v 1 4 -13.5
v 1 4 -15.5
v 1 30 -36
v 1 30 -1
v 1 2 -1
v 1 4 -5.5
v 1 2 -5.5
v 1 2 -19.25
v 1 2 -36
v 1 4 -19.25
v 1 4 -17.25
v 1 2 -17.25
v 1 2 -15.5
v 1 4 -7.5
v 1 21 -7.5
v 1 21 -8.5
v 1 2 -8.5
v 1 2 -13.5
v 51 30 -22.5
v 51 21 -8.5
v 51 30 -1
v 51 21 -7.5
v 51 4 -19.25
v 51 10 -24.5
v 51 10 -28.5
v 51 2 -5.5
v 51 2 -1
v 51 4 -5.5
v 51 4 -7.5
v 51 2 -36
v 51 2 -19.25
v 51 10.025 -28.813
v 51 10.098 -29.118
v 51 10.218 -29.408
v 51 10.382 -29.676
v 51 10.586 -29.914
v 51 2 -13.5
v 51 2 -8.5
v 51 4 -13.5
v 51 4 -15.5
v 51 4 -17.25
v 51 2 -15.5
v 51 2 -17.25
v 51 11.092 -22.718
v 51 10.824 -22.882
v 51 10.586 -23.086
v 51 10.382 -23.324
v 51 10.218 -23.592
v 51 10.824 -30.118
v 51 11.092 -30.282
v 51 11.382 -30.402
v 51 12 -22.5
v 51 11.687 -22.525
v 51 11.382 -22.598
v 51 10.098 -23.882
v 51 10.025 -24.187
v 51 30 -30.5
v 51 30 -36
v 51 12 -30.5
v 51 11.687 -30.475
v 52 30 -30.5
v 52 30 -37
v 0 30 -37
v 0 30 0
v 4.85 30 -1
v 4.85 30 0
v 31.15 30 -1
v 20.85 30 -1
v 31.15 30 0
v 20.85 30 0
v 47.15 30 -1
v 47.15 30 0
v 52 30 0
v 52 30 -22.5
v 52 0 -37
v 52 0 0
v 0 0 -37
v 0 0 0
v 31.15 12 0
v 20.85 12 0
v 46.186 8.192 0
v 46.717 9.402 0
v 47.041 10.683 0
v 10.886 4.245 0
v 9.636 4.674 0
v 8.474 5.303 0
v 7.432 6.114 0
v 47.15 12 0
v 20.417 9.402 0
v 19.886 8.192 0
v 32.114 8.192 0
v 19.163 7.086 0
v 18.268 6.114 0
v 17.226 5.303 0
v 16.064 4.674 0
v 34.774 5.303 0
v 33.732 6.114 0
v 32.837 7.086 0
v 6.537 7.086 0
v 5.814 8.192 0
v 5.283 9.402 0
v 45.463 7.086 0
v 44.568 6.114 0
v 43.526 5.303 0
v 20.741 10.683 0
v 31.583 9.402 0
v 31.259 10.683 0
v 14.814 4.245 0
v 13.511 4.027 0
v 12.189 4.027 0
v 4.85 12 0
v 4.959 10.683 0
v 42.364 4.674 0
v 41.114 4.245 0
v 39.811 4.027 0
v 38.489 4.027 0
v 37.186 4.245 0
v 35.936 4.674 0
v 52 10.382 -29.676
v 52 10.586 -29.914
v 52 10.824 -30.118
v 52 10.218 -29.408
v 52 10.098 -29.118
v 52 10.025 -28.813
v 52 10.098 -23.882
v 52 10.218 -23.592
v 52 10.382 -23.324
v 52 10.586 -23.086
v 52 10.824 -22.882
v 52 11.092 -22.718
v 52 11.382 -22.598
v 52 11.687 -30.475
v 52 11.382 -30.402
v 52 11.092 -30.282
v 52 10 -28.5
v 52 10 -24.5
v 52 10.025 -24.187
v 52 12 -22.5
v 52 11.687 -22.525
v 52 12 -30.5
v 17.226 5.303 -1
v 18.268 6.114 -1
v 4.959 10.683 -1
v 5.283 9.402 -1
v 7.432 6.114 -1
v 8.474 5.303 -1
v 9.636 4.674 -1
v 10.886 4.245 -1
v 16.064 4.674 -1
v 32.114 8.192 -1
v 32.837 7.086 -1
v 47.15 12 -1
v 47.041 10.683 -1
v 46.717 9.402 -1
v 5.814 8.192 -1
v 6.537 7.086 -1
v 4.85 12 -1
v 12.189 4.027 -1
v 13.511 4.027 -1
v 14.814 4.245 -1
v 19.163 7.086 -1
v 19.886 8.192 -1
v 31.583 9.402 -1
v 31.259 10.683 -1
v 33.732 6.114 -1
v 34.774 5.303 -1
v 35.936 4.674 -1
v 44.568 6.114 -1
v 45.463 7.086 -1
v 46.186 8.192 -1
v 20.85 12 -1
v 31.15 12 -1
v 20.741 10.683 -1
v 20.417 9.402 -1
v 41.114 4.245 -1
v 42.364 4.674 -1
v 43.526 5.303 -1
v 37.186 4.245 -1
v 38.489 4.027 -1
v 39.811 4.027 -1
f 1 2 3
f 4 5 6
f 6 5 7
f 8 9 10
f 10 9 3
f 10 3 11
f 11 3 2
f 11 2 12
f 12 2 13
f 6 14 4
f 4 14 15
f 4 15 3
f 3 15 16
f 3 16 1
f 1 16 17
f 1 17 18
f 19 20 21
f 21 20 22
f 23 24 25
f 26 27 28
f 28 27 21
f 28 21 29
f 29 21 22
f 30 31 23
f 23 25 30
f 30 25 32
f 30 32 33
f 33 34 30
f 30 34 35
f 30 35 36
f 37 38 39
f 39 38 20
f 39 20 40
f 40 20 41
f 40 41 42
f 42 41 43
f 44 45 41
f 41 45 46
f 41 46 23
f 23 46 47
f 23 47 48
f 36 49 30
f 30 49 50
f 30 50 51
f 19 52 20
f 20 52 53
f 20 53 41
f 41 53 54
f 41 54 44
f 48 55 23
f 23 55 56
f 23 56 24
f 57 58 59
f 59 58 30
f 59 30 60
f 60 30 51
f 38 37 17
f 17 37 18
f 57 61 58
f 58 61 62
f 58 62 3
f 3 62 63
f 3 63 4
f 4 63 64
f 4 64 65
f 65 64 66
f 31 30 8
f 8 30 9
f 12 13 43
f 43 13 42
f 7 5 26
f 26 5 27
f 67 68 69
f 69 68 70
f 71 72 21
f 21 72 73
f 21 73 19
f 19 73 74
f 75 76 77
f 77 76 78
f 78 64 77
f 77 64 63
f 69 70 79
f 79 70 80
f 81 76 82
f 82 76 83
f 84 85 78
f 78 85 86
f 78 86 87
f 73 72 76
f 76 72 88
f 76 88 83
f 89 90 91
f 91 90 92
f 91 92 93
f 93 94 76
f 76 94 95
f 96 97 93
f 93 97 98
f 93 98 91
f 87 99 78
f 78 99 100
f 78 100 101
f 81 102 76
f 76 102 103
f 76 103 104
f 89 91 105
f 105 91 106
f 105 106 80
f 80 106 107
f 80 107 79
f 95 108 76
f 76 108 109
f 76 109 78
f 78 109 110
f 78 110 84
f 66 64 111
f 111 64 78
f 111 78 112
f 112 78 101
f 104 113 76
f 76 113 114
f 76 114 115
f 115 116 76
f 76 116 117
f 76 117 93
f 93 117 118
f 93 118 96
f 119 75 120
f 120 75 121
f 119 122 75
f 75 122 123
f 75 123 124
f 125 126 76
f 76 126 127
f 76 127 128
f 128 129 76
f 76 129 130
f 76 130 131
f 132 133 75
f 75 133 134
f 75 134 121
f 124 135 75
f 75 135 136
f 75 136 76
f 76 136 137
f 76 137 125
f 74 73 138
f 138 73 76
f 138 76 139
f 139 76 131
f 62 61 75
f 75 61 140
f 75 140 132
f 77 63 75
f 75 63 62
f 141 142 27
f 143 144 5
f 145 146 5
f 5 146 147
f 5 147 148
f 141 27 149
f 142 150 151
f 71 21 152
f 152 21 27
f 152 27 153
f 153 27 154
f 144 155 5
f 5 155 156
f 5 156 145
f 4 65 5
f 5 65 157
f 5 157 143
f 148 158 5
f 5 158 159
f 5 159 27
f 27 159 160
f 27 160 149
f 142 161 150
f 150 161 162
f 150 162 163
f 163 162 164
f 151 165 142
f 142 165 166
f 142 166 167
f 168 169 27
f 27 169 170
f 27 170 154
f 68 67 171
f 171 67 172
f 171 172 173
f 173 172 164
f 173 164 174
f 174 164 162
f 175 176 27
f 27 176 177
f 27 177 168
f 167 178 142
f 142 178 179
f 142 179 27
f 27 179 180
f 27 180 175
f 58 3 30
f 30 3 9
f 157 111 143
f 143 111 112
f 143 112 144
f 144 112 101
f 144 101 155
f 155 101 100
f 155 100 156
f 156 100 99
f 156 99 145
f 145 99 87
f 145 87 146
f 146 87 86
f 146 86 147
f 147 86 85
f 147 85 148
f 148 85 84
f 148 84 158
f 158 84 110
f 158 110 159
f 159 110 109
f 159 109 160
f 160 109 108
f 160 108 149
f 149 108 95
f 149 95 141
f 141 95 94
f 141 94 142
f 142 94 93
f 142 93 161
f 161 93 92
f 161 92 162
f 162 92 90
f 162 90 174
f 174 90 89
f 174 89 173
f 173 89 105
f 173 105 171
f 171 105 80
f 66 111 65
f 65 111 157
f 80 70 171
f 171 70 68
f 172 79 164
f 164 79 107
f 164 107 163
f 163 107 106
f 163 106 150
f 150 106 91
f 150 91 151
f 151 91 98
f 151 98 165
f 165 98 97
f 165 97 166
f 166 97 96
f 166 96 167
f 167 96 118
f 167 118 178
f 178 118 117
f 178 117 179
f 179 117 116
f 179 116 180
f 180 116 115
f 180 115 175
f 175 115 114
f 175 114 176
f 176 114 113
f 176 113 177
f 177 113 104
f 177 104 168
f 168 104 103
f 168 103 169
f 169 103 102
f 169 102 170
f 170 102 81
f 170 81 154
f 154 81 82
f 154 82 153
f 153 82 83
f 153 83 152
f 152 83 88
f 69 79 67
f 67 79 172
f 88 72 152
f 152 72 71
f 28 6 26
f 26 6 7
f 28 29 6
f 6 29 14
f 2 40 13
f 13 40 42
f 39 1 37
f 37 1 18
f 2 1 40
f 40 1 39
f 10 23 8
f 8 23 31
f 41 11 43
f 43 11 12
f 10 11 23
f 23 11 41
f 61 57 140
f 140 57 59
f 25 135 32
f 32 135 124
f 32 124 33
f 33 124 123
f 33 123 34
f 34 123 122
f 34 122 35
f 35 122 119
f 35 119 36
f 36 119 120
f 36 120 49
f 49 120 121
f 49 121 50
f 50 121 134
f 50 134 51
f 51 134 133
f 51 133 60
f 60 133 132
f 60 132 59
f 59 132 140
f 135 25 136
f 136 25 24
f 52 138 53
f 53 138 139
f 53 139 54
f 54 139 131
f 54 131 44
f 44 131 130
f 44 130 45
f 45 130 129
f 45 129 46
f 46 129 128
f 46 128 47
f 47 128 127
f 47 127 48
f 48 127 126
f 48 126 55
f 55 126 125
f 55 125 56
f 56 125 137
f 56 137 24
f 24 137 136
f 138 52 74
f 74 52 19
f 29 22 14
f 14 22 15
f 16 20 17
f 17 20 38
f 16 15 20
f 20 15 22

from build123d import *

# Parameters (mm, degrees)
SKETCH1_W           = 52
SKETCH1_H           = 37
SKETCH1_W_2         = 50
SKETCH1_H_2         = 35
BOSS_EXTRUDE1_DEPTH = 30
SKETCH2_W           = 52
SKETCH2_H           = 37
BOSS_EXTRUDE2_DEPTH = 2
CUT_EXTRUDE1_DEPTH  = 2
SKETCH4_W           = 50
SKETCH4_H           = 2
BOSS_EXTRUDE3_DEPTH = 2
CUT_EXTRUDE2_REACH  = 54
SKETCH7_W           = 50
SKETCH7_H           = 1
BOSS_EXTRUDE4_DEPTH = 19


with BuildPart() as part:
    # Sketch1 → Boss-Extrude1 (new body)
    with BuildSketch(Plane(origin=(0, 0, 0), x_dir=(1, 0, 0), z_dir=(0, 1, 0))):
        with Locations((26, 18.5)):
            Rectangle(SKETCH1_W, SKETCH1_H)
        with Locations((26, 18.5)):
            Rectangle(SKETCH1_W_2, SKETCH1_H_2, mode=Mode.SUBTRACT)
    extrude(amount=BOSS_EXTRUDE1_DEPTH)

    # Sketch2 → Boss-Extrude2 (add)
    with BuildSketch(Plane(origin=(0, 0, 0), x_dir=(1, 0, 0), z_dir=(0, 1, 0))):
        with Locations((26, 18.5)):
            Rectangle(SKETCH2_W, SKETCH2_H)
    extrude(amount=BOSS_EXTRUDE2_DEPTH)

    # Sketch3 → Cut-Extrude1 (cut)
    with BuildSketch(Plane.XY):
        with BuildLine():
            Line((4.85, 12), (4.85, 30))
            Line((4.85, 30), (20.85, 30))
            Line((20.85, 30), (20.85, 12))
            ThreePointArc((20.85, 12), (12.85, 4), (4.85, 12))
        make_face()
        with BuildLine():
            Line((31.15, 12), (31.15, 30))
            Line((31.15, 30), (47.15, 30))
            Line((47.15, 30), (47.15, 12))
            ThreePointArc((47.15, 12), (39.15, 4), (31.15, 12))
        make_face()
    extrude(amount=-CUT_EXTRUDE1_DEPTH, mode=Mode.SUBTRACT)

    # Sketch4 → Boss-Extrude3 (add)
    with BuildSketch(Plane(origin=(0, 2, 0), x_dir=(1, 0, 0), z_dir=(0, 1, 0))):
        with Locations((26, 6.5)):
            Rectangle(SKETCH4_W, SKETCH4_H)
        with Locations((26, 14.5)):
            Rectangle(SKETCH4_W, SKETCH4_H)
        with Locations((26, 18.25)):
            Rectangle(SKETCH4_W, SKETCH4_H)
    extrude(amount=BOSS_EXTRUDE3_DEPTH)

    # Sketch5 → Cut-Extrude2 (cut, up to next)
    with BuildSketch(Plane(origin=(52, 0, 0), x_dir=(0, 0, -1), z_dir=(1, 0, 0)), mode=Mode.PRIVATE) as cut_extrude2_sk1:
        with BuildLine():
            Line((30.5, 30), (22.5, 30))
            Line((22.5, 30), (22.5, 12))
            ThreePointArc((22.5, 12), (23.085786438, 10.585786438), (24.5, 10))
            Line((24.5, 10), (28.5, 10))
            ThreePointArc((28.5, 10), (29.914213562, 10.585786438), (30.5, 12))
            Line((30.5, 12), (30.5, 30))
        make_face()
    cut_extrude2_tool1 = extrude(cut_extrude2_sk1.sketch, amount=-CUT_EXTRUDE2_REACH, mode=Mode.PRIVATE) & part.part
    add(cut_extrude2_tool1.solids().sort_by_distance((52, 20.103619, -26.5))[0], mode=Mode.SUBTRACT)

    # Sketch7 → Boss-Extrude4 (add)
    with BuildSketch(Plane(origin=(0, 2, 0), x_dir=(1, 0, 0), z_dir=(0, 1, 0))):
        with Locations((26, 8)):
            Rectangle(SKETCH7_W, SKETCH7_H)
    extrude(amount=BOSS_EXTRUDE4_DEPTH)


solid = part.part
